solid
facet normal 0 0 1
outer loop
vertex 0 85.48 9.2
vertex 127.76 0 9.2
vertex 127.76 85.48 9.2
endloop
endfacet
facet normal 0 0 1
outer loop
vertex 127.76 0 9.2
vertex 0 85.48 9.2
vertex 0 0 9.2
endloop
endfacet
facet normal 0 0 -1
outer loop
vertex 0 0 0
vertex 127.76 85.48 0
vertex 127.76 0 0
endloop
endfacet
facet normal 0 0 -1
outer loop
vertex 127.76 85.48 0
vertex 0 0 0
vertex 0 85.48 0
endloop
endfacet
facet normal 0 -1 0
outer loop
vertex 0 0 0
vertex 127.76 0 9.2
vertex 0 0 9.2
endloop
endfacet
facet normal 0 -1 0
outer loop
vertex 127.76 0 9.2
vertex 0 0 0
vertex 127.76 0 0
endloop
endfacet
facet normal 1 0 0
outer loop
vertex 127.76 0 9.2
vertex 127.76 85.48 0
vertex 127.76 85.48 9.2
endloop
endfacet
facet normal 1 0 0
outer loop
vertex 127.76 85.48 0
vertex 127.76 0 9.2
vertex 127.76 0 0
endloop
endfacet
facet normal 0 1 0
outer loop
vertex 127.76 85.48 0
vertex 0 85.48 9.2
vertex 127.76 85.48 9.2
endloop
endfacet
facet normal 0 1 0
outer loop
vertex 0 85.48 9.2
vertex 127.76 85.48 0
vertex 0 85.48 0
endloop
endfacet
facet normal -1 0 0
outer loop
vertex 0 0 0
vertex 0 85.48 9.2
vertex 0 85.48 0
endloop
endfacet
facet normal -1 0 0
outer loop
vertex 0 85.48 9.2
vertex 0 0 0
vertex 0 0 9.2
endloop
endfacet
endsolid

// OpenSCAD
// Opentrons Tough Universal Lid
// loadName: opentrons_tough_universal_lid
// Auto-generated by labware_to_stl.py from Opentrons V2 labware definition

$fn = 64;

difference() {
    // ── Labware body ──────────────────────────────────────────────
    cube([127.7600, 85.4800, 9.2000]);

    // ── Well cutouts ──────────────────────────────────────────────
}
